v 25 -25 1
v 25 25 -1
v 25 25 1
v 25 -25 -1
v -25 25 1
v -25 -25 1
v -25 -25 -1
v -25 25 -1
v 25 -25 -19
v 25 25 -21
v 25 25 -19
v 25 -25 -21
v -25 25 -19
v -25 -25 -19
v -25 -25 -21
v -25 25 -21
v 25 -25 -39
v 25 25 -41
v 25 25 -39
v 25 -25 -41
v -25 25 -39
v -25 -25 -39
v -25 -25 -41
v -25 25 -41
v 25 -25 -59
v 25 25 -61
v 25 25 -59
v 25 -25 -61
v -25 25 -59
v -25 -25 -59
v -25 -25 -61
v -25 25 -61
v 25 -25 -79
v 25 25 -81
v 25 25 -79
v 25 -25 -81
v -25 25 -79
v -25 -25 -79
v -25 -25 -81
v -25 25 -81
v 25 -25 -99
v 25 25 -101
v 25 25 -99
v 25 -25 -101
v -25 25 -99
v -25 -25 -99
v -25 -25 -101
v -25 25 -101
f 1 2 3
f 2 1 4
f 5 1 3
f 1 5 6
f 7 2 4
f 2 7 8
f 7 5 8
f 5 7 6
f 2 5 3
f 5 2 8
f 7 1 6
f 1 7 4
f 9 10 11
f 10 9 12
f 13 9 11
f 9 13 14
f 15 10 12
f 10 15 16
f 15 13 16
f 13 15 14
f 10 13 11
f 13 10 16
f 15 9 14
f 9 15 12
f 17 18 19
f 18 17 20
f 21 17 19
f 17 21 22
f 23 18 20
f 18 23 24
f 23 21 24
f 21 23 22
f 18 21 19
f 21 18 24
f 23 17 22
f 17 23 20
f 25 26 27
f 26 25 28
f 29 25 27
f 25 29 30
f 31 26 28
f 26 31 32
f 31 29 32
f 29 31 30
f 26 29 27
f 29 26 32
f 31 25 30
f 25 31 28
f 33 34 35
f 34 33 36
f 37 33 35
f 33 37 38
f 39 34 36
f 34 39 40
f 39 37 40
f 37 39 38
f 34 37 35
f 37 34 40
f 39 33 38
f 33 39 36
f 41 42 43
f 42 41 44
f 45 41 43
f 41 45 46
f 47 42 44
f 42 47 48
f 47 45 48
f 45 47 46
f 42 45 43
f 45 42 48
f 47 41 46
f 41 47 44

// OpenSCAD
// Parameters for the flat plate
plate_length = 50;  // Length of the flat plate
plate_width = 50;   // Width of the flat plate
plate_thickness = 2; // Thickness of the flat plate
plate_spacing = 20;  // Spacing between each plate

// Function to create a flat plate
module flat_plate() {
    cube([plate_length, plate_width, plate_thickness], center = true);
}

// Individual flat plates positioned separately
module separated_flat_plates() {
    for (i = [0:5]) {
        translate([0, 0, -i * plate_spacing])
            flat_plate();
    }
}

// Render the separated flat plates
separated_flat_plates();
